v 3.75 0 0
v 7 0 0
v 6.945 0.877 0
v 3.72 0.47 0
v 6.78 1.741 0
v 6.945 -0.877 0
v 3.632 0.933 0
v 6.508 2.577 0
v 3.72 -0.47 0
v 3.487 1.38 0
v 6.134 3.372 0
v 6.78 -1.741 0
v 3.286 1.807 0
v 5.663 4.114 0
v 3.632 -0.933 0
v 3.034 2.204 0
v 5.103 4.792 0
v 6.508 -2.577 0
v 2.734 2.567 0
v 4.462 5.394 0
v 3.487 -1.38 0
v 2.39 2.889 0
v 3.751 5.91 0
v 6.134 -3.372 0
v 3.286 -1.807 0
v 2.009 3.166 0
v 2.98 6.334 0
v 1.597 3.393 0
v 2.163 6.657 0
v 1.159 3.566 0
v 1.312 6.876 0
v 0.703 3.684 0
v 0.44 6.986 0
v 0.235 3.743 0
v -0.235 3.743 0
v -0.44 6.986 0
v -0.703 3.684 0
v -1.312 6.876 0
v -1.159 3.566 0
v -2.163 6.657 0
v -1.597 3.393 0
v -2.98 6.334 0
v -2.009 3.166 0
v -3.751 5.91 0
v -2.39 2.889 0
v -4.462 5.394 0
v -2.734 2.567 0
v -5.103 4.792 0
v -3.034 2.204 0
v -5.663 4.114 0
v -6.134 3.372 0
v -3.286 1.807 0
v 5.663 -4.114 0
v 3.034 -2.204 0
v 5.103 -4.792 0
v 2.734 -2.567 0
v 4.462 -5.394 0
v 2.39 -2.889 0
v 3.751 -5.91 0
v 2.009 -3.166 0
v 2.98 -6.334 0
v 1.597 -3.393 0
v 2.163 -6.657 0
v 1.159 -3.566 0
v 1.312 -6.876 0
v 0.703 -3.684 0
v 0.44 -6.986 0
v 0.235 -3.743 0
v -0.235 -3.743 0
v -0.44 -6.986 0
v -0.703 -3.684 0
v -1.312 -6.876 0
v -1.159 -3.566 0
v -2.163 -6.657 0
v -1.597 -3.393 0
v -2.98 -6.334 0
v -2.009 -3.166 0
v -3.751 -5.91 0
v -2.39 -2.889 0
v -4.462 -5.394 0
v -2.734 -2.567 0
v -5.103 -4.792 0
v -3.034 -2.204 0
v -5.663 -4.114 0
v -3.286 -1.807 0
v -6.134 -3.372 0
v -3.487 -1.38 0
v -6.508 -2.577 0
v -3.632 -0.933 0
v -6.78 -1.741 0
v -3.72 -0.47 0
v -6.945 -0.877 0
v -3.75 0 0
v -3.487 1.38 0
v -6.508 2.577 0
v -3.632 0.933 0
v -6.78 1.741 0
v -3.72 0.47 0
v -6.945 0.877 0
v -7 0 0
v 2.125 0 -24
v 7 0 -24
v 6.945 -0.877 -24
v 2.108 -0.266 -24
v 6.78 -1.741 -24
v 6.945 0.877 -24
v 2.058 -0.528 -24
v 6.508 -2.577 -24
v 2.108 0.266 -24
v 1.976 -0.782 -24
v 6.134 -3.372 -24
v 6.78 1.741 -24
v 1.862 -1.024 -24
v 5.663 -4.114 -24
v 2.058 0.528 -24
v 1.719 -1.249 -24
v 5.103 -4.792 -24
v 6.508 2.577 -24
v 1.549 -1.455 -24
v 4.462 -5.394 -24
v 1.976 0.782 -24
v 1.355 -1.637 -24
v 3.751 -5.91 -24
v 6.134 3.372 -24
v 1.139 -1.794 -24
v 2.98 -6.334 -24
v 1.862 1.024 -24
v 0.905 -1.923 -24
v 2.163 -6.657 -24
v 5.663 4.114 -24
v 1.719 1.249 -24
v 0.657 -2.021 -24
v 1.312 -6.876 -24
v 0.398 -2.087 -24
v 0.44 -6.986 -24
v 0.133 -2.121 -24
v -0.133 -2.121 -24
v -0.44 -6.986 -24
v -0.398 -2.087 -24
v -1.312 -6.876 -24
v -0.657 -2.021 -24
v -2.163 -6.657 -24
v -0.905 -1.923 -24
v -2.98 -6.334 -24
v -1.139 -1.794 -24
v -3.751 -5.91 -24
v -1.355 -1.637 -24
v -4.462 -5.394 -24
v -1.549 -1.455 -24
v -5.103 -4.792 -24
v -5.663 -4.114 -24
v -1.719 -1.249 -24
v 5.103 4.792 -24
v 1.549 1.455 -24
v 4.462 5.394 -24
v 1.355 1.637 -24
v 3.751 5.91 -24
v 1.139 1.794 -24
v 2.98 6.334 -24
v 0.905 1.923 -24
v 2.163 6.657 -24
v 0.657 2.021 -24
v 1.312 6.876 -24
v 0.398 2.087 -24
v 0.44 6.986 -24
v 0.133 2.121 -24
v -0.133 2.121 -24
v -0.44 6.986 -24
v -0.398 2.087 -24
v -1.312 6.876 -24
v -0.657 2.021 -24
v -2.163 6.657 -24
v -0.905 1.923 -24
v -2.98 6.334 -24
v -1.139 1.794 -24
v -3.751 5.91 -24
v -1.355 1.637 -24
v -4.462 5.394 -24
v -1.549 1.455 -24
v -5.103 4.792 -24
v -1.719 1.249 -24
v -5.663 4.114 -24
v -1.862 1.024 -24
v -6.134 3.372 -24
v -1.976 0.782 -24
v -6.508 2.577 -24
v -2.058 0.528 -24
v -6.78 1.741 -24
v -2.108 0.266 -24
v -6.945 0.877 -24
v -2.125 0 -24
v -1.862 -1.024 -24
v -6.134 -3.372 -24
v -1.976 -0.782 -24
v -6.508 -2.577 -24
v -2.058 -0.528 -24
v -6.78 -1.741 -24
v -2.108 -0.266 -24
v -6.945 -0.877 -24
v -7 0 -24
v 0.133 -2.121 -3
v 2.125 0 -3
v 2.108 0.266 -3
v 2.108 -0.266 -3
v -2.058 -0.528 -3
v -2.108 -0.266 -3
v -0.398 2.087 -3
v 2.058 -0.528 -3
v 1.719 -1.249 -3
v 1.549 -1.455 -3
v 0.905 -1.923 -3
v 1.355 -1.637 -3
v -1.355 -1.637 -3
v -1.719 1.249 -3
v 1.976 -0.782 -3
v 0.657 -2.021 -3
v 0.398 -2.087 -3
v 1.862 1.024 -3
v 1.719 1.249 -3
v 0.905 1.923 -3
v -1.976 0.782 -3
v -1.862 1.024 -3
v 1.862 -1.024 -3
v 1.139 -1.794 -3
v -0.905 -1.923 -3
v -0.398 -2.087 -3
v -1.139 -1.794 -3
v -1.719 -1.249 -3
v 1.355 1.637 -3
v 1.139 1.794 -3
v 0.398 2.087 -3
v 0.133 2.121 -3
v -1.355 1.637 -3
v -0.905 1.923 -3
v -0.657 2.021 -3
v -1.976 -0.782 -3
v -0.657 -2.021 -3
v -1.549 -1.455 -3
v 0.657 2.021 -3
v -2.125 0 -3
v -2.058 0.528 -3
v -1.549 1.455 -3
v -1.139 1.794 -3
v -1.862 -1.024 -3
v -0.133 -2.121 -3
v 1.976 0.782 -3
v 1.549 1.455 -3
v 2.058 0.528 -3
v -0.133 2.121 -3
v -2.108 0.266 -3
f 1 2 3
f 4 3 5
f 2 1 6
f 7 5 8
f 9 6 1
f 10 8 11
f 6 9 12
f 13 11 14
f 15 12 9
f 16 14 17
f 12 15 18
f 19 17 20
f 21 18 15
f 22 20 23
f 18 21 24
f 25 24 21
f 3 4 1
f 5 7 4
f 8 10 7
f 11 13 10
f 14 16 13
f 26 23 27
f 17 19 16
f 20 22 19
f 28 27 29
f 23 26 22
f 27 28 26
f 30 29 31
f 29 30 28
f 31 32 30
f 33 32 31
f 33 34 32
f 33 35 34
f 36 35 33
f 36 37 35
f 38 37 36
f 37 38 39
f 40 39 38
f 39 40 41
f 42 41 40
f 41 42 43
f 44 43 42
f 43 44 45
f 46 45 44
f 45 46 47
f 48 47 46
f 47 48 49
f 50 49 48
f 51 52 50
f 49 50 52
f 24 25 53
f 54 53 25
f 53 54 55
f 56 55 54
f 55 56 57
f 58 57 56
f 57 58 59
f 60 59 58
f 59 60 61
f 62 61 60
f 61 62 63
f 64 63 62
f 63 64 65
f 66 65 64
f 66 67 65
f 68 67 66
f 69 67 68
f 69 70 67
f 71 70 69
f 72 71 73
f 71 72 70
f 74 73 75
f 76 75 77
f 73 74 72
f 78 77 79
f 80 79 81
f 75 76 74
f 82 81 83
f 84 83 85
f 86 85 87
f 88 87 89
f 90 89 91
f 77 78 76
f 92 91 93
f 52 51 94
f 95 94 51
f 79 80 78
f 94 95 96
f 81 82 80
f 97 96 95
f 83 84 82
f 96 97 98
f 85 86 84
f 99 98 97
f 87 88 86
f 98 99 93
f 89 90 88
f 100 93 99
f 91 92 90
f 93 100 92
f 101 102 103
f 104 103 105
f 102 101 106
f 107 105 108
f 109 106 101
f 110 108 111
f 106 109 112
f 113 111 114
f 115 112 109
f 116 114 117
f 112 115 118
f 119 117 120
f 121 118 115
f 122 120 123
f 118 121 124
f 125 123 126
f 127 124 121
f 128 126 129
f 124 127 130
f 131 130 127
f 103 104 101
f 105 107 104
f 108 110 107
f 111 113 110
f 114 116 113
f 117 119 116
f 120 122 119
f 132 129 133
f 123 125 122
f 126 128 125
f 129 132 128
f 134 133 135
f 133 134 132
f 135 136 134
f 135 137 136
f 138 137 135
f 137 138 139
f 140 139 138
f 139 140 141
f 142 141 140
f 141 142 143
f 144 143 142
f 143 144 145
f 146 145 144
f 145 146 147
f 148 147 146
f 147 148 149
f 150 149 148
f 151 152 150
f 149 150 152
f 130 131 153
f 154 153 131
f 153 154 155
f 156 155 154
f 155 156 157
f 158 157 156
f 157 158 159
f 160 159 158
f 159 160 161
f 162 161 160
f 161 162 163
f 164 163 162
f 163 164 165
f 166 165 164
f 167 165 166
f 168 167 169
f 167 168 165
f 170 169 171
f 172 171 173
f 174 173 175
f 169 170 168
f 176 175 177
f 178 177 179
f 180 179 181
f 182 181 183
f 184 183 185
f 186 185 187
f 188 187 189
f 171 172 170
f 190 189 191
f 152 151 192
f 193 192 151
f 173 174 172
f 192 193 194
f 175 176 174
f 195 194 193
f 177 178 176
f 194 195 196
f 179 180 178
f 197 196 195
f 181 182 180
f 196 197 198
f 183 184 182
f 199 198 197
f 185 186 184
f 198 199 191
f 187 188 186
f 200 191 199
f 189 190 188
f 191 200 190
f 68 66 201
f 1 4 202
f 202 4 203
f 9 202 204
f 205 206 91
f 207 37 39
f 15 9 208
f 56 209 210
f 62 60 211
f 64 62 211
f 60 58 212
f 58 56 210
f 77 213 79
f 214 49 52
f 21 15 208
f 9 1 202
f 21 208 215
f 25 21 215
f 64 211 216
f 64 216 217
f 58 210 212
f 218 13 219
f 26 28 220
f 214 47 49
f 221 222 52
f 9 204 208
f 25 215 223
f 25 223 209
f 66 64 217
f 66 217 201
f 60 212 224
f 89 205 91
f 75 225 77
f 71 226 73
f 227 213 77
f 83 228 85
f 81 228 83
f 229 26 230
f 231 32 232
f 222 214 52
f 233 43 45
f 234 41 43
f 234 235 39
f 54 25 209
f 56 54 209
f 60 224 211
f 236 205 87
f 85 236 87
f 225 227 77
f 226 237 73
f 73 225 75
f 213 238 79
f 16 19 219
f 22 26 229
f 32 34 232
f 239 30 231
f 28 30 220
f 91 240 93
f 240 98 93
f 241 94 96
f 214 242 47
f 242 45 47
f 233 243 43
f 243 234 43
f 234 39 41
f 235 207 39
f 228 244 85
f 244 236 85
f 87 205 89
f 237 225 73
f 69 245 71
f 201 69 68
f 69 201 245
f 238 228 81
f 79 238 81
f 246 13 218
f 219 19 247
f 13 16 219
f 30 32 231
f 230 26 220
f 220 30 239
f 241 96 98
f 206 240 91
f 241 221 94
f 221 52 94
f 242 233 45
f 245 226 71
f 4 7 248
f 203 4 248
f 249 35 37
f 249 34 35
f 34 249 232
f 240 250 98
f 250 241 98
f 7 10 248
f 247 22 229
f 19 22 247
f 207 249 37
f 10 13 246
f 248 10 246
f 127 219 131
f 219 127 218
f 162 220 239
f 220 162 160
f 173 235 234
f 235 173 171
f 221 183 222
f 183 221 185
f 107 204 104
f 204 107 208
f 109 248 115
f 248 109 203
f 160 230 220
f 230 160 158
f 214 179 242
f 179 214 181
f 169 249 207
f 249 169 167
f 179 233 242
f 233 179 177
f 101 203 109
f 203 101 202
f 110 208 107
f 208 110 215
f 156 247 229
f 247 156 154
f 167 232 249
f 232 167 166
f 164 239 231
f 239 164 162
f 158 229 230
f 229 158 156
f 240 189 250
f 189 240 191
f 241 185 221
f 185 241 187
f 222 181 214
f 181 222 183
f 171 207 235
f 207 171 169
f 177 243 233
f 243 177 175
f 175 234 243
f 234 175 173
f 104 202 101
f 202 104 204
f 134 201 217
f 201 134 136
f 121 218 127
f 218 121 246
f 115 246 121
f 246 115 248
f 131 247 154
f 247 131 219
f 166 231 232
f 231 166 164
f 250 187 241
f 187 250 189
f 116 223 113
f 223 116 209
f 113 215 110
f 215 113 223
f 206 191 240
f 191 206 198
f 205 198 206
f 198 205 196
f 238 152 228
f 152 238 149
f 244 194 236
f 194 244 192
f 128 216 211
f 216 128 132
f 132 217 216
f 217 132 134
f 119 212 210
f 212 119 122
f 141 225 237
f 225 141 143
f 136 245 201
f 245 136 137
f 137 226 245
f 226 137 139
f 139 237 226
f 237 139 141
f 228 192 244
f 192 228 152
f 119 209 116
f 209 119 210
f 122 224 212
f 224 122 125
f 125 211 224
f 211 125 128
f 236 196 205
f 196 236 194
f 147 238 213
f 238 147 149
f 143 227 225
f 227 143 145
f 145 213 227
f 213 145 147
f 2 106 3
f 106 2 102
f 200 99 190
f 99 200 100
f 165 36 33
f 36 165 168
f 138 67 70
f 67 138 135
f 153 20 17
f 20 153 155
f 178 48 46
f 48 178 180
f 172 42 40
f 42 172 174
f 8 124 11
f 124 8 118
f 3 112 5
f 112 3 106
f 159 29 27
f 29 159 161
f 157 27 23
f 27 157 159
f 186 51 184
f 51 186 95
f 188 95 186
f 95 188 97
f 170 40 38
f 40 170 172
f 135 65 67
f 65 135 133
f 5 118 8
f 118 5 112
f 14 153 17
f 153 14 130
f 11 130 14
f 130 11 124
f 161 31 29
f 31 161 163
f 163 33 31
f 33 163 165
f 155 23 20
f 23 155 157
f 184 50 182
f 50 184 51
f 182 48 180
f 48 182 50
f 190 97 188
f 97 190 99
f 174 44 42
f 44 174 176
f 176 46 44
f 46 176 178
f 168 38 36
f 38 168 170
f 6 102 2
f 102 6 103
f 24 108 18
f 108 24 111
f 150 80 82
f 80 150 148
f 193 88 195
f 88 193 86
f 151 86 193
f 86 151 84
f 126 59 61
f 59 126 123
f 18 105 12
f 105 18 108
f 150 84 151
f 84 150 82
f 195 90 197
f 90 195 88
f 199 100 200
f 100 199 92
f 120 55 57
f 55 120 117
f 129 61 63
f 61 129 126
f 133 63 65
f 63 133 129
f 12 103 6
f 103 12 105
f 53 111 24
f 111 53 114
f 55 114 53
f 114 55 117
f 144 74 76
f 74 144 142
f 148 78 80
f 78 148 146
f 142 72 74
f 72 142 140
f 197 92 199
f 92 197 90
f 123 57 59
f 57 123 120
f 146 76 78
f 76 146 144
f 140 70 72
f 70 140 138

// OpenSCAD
$fn = 50;


difference() {
	union() {
		translate(v = [0, 0, -24.0000000000]) {
			cylinder(h = 24, r = 7.0000000000);
		}
		cylinder(h = 0, r = 16.0000000000);
	}
	union() {
		translate(v = [0, 0, 0]) {
			rotate(a = [0, 0, 0]) {
				difference() {
					union() {
						#translate(v = [0, 0, -24.0000000000]) {
							cylinder(h = 24, r = 2.0000000000);
						}
						#translate(v = [0, 0, -3]) {
							cylinder(h = 3, r1 = 2.1250000000, r2 = 3.7500000000);
						}
						#translate(v = [0, 0, -24.0000000000]) {
							cylinder(h = 24, r = 2.1250000000);
						}
						#translate(v = [0, 0, -24.0000000000]) {
							cylinder(h = 24, r = 2.0000000000);
						}
					}
					union();
				}
			}
		}
	}
}
